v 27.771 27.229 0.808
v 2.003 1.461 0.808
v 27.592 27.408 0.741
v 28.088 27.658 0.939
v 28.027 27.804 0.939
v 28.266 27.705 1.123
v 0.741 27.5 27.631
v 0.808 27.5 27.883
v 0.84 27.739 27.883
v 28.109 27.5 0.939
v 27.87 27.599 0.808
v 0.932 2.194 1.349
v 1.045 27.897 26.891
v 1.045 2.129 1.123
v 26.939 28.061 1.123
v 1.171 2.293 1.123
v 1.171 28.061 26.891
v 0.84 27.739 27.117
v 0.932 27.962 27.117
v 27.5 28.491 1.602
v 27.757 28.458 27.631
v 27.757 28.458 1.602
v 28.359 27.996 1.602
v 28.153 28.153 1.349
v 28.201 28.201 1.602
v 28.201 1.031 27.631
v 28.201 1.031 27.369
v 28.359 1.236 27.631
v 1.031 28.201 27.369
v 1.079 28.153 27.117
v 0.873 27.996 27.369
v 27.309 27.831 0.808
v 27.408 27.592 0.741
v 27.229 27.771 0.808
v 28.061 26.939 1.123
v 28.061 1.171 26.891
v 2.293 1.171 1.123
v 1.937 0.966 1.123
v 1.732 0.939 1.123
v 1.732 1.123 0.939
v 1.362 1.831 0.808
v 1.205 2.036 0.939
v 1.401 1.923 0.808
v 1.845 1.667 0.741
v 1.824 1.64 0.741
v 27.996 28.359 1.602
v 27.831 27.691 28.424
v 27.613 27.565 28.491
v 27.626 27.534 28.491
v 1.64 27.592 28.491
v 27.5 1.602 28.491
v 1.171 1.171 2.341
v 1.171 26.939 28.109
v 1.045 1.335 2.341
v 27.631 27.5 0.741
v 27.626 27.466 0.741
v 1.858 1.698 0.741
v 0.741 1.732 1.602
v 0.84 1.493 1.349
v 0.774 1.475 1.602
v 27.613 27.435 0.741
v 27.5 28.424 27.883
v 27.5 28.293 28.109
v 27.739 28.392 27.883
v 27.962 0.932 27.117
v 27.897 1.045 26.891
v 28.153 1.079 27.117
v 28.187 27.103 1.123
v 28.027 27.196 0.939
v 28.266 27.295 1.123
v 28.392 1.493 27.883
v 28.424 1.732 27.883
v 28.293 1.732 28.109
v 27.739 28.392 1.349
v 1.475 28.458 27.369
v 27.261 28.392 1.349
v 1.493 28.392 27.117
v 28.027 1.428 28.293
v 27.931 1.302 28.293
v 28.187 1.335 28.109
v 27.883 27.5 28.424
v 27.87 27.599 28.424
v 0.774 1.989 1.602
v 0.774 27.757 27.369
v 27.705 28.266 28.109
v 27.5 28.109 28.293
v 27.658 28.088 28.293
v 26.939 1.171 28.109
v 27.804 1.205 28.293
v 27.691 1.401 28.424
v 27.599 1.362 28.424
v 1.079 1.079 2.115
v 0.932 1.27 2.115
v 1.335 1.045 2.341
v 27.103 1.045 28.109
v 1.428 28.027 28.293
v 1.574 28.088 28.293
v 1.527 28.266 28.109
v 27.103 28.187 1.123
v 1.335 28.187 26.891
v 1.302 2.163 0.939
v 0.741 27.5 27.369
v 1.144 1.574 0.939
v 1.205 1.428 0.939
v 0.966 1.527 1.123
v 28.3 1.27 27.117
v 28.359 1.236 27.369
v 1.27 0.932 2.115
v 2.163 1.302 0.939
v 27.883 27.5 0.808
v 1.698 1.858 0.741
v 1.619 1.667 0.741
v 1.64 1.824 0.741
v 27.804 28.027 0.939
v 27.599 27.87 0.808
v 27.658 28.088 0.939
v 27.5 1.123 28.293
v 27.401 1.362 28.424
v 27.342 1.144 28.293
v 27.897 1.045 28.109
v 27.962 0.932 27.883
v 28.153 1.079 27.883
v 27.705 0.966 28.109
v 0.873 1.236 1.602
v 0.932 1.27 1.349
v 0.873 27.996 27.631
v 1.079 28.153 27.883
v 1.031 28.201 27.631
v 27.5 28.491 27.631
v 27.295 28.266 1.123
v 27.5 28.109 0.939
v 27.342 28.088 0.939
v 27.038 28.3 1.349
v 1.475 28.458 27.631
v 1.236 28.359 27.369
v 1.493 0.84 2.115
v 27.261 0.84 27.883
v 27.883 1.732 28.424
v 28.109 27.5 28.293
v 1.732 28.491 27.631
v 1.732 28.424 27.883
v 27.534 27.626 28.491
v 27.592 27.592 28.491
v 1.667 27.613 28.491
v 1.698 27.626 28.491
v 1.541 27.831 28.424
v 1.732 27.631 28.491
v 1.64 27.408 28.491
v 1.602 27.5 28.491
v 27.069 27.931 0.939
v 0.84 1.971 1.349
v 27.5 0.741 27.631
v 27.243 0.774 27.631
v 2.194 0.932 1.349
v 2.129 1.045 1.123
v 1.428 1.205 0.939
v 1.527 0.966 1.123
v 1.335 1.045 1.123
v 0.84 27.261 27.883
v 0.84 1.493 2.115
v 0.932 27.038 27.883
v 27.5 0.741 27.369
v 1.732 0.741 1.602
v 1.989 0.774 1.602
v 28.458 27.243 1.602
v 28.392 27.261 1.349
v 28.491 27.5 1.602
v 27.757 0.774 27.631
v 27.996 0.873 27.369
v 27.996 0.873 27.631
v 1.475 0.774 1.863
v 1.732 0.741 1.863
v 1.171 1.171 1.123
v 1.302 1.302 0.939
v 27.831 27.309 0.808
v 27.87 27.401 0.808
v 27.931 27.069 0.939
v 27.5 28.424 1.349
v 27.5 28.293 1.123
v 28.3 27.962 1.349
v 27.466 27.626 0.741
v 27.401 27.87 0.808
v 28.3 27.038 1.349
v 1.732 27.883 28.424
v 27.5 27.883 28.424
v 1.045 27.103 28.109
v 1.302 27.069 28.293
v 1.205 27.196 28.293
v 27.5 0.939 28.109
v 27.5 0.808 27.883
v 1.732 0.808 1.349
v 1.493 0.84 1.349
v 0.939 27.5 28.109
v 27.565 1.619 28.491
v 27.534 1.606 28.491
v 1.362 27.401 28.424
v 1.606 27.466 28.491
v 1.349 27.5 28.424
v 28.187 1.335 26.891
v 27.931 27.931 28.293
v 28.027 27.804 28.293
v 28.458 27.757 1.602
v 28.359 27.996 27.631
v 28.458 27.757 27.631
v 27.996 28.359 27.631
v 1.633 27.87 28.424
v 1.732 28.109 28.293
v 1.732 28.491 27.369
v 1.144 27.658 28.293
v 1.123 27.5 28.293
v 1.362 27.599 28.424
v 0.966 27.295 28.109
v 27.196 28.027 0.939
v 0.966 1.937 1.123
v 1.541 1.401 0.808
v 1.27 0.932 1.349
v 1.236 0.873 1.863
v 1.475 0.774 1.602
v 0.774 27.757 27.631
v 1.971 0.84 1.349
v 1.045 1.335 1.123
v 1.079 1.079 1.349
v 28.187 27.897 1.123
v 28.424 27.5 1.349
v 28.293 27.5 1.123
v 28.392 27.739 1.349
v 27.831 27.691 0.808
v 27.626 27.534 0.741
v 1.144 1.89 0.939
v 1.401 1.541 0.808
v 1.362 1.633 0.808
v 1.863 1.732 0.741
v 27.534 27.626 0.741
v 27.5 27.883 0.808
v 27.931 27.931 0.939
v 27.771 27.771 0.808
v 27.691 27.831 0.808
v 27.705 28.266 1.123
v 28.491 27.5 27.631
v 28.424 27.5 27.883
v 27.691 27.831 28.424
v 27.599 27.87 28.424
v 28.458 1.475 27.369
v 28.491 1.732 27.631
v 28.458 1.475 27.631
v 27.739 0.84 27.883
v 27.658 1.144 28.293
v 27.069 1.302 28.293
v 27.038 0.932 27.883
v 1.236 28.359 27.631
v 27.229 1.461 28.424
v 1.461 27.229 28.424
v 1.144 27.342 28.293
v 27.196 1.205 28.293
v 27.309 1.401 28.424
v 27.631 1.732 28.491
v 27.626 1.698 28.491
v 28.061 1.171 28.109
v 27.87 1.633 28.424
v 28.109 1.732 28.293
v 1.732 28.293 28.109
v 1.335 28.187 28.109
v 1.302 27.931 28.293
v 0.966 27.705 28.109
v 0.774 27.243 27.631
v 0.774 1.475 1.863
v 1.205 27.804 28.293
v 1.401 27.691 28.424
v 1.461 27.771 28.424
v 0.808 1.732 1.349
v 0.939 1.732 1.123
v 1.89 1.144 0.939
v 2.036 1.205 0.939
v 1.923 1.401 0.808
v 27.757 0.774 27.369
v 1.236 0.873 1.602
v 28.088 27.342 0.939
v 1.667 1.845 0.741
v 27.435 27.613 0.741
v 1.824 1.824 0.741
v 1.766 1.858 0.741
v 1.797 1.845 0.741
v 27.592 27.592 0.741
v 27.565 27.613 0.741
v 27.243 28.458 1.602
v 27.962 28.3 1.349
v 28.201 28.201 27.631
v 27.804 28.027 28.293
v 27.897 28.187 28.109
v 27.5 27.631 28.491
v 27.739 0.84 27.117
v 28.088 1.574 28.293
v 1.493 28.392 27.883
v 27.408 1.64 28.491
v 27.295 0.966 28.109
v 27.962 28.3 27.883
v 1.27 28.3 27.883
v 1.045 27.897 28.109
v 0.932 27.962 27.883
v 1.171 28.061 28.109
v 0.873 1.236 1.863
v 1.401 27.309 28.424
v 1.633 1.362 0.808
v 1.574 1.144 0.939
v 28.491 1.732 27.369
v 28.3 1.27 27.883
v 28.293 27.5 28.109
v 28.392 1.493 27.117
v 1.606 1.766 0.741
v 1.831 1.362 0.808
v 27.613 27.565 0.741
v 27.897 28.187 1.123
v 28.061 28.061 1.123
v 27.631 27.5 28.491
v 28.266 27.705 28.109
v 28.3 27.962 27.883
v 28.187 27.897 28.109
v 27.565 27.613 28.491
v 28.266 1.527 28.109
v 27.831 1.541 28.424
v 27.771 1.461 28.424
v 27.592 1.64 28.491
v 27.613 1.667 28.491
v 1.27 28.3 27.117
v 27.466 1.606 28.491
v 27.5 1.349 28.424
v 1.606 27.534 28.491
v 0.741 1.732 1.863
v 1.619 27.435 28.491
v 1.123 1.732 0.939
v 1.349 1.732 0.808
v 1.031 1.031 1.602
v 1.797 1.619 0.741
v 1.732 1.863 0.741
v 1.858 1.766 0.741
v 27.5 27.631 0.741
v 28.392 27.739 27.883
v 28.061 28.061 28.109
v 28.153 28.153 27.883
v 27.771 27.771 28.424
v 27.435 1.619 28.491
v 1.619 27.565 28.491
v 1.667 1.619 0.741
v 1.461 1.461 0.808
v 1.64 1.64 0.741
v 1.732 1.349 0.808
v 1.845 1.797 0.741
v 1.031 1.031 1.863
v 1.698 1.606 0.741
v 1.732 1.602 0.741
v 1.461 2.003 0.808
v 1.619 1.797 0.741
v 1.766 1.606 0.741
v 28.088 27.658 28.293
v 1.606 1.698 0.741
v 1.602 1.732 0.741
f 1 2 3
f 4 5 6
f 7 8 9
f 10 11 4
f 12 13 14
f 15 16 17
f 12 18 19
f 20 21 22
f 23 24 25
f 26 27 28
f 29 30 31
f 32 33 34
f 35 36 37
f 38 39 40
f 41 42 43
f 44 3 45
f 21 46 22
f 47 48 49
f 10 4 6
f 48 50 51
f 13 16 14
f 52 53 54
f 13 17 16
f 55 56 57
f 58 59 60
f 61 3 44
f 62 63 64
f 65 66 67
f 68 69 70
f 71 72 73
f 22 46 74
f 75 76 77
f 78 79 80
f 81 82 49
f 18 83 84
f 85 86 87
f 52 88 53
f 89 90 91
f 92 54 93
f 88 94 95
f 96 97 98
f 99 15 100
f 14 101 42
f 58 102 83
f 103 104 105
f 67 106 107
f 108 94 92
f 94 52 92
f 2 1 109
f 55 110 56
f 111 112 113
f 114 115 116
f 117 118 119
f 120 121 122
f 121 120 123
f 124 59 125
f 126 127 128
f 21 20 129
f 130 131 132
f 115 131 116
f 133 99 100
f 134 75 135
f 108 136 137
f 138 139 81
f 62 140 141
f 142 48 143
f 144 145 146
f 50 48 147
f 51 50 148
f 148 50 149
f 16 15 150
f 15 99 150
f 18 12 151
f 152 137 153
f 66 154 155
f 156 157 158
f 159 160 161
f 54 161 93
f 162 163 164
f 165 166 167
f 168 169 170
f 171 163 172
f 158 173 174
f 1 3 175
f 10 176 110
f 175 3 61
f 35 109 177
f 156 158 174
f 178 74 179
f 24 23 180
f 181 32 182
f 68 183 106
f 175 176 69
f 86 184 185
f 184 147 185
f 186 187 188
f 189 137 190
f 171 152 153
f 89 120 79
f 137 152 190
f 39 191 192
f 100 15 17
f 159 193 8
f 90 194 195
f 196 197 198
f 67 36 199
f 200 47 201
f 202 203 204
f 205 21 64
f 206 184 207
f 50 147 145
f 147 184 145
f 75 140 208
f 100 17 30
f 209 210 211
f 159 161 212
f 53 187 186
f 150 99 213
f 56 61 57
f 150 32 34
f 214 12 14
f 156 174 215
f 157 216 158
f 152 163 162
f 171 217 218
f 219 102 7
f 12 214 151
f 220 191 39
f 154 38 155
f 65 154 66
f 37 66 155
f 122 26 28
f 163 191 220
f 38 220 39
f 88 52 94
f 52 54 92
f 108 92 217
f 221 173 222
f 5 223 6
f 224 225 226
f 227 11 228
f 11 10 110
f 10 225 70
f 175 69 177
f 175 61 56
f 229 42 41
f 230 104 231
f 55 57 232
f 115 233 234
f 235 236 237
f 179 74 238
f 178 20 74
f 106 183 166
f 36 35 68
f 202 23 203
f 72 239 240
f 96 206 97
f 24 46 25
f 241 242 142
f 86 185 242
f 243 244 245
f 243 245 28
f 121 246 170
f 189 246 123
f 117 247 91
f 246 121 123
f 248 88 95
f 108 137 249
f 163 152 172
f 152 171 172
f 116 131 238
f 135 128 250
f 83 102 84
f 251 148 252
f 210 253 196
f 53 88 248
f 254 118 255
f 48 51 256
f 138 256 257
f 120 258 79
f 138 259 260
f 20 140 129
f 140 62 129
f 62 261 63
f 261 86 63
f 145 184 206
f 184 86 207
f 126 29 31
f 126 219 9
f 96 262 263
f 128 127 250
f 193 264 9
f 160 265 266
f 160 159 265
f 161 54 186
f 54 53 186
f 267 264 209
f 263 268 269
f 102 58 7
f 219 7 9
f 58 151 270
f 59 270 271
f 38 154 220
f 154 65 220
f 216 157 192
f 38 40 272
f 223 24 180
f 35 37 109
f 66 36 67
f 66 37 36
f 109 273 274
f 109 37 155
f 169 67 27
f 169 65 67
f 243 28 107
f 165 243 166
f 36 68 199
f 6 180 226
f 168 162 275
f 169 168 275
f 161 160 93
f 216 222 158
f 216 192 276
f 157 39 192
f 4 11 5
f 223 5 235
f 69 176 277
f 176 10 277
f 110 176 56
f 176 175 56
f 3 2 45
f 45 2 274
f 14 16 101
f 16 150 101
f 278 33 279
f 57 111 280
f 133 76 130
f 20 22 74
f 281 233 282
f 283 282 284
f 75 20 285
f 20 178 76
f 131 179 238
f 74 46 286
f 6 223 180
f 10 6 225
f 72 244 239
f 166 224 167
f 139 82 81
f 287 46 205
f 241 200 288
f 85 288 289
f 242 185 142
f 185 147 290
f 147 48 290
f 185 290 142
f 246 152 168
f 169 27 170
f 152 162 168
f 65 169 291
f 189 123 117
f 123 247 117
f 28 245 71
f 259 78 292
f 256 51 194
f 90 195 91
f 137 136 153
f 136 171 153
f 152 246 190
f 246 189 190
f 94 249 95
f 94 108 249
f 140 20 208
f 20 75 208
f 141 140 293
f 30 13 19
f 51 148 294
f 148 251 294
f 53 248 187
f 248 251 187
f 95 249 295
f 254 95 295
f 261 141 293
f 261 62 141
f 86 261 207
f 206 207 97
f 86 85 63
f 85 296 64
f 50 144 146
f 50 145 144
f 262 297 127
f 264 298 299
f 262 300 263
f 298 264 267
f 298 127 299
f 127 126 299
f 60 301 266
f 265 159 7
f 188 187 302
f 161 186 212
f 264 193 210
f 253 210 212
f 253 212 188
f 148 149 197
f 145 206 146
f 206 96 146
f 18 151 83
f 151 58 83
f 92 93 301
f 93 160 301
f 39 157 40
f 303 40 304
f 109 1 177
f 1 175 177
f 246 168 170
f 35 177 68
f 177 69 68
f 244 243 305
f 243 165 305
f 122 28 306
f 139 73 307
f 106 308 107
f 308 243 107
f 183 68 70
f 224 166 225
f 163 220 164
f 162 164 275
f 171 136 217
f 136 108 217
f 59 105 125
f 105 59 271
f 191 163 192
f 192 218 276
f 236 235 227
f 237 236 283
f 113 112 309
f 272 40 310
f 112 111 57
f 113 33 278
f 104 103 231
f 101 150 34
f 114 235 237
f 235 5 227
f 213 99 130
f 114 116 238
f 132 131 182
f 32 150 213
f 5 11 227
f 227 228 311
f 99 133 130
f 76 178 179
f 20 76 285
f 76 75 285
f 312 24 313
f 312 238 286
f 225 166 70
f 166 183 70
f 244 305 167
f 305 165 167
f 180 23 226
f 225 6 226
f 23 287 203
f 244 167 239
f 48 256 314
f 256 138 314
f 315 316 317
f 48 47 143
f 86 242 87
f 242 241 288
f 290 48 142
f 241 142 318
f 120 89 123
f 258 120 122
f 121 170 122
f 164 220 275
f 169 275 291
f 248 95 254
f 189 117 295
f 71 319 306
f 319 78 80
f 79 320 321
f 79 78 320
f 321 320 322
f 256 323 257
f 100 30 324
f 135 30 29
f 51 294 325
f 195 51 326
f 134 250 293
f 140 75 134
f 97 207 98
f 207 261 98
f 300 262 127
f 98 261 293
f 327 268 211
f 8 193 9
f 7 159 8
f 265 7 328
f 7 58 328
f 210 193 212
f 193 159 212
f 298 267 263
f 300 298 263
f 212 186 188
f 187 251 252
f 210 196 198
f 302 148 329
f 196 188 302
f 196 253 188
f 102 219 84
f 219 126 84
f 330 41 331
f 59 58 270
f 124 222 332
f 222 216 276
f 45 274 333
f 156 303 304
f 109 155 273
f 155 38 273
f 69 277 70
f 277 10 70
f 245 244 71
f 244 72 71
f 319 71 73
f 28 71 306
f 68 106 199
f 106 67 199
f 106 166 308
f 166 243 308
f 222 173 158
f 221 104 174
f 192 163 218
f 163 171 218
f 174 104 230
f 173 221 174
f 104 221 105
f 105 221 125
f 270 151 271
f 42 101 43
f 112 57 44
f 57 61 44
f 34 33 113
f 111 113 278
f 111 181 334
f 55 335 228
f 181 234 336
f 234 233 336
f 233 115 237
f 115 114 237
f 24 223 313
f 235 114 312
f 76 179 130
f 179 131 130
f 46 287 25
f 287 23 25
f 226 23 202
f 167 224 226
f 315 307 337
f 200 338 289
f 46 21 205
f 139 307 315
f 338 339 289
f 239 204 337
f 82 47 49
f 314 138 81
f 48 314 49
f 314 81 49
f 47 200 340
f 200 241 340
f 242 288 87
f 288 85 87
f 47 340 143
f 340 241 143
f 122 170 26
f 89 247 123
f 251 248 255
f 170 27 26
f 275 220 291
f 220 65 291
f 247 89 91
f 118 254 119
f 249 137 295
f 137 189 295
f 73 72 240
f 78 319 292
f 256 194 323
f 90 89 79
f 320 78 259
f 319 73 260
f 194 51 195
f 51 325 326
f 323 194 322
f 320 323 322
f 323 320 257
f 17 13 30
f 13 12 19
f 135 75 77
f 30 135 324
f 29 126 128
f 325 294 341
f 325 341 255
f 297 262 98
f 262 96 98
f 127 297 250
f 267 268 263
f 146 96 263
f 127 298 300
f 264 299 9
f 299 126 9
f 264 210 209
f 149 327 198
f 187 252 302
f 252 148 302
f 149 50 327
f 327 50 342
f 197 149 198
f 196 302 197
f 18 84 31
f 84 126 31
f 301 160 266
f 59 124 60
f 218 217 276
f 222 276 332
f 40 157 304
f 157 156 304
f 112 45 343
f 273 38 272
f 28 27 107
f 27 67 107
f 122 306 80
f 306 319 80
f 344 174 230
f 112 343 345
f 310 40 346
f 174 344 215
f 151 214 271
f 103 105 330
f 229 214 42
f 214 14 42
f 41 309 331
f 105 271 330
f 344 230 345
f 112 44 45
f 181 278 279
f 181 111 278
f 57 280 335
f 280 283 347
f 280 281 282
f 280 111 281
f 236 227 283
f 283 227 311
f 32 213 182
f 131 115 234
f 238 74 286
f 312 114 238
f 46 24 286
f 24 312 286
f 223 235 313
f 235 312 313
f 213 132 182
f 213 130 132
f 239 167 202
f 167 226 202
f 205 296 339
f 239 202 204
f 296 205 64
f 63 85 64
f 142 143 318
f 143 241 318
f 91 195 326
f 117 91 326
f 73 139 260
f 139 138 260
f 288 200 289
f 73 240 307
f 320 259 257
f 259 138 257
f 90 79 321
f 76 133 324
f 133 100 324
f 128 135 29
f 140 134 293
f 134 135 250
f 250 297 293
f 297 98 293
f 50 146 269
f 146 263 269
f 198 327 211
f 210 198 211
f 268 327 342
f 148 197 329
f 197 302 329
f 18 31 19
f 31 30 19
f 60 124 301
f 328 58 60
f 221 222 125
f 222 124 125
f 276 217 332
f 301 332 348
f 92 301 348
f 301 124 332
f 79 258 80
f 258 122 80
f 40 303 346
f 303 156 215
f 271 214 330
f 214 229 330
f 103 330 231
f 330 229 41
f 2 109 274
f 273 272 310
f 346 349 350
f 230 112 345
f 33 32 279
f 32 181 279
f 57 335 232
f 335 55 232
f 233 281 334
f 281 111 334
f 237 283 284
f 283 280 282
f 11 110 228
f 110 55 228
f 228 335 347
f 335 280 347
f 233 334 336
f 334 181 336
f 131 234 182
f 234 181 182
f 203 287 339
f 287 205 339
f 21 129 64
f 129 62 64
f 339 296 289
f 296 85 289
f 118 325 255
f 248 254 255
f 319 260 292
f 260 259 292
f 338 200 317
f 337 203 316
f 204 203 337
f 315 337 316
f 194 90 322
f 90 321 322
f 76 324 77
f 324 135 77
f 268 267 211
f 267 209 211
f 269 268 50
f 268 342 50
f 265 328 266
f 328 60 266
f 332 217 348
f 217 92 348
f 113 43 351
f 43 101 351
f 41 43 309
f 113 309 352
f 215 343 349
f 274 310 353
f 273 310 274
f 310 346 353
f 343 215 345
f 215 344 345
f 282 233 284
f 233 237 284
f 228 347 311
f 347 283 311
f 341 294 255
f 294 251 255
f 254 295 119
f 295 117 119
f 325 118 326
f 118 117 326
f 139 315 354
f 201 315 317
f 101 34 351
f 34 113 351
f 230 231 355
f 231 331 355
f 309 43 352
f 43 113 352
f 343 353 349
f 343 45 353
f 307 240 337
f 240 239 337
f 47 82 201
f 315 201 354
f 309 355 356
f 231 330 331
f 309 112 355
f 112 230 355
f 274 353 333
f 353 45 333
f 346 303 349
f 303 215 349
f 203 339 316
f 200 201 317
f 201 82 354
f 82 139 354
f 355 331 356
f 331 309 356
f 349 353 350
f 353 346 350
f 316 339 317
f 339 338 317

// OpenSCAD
// file: def.scad
total_size = 57;

round_radius = 1;
sticker_margin = 2.5;
sticker_round_radius = 0.75;
inf = total_size * 10;

theta = atan(sqrt(2));

cut1_rot = [-theta, 0, -45];
sticker_dif_cut1_dis = total_size / 2 / tan(theta) - round_radius / tan(theta / 2) + round_radius - sticker_margin;
sticker_int_cut1_dis = total_size / 2 / tan(theta) + round_radius * tan(theta / 2) - round_radius + sticker_margin;

module _cube() {
    cube([total_size - round_radius * 2, total_size - round_radius * 2, total_size - round_radius * 2], center = true);
}

module _cut1() {
    translate([-inf, -inf, 0])
        cube([inf * 2, inf * 2, inf]);
}

module _int_cut1() {
    translate([-inf, -inf, round_radius])
        cube([inf * 2, inf * 2, inf]);
}

module _sticker_int_cut1() {
    rotate([-90, 0, 0])
        translate([-inf, -inf, sticker_int_cut1_dis])
            cube([inf * 2, inf * 2, inf]);
}

module _sticker_dif_cut1() {
    rotate([-90, 0, 0])
        translate([-inf, -inf, sticker_dif_cut1_dis])
            cube([inf * 2, inf * 2, inf]);
}

module _sticker_base() {
    translate([0, 0, total_size / 2])
        cube([total_size - sticker_margin * 2, total_size - sticker_margin * 2, 0.1], center = true);
}
// main file
include <def.scad>

module corner_block() {
    minkowski() {
        intersection() {
            _cube();
            intersection_for(vec = [[90, 0, 0], [-90, 0, 0], [0, -90, 0]])
                rotate(vec)
                    rotate(cut1_rot)
                        _int_cut1();
        }
        sphere(r = round_radius, $fn = 24);
    }
}

corner_block();
